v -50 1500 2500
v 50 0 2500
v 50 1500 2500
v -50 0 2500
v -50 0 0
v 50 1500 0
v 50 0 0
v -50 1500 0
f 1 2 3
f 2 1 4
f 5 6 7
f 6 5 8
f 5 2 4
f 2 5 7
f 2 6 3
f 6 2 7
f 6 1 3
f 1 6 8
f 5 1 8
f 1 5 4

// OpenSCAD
// file: templates/t_simple-segment.scad
include <../templates/basic-dims.scad>

module simple_segment() {
    translate([-section_thickness/2, 0, 0])
    cube([section_thickness, section_width, section_height]);
}
// file: templates/basic-dims.scad
unit = 1000;

section_width = unit * 1.5;
section_height = unit * 2.5;
section_thickness = unit * 0.1;

rt = sqrt(2);

//  -- Notes --
//  Z is UP
//  X is FORWARD (out of the screen)
// main file
include <./templates/basic-dims.scad>
include <./templates/t_simple-segment.scad>

simple_segment();
